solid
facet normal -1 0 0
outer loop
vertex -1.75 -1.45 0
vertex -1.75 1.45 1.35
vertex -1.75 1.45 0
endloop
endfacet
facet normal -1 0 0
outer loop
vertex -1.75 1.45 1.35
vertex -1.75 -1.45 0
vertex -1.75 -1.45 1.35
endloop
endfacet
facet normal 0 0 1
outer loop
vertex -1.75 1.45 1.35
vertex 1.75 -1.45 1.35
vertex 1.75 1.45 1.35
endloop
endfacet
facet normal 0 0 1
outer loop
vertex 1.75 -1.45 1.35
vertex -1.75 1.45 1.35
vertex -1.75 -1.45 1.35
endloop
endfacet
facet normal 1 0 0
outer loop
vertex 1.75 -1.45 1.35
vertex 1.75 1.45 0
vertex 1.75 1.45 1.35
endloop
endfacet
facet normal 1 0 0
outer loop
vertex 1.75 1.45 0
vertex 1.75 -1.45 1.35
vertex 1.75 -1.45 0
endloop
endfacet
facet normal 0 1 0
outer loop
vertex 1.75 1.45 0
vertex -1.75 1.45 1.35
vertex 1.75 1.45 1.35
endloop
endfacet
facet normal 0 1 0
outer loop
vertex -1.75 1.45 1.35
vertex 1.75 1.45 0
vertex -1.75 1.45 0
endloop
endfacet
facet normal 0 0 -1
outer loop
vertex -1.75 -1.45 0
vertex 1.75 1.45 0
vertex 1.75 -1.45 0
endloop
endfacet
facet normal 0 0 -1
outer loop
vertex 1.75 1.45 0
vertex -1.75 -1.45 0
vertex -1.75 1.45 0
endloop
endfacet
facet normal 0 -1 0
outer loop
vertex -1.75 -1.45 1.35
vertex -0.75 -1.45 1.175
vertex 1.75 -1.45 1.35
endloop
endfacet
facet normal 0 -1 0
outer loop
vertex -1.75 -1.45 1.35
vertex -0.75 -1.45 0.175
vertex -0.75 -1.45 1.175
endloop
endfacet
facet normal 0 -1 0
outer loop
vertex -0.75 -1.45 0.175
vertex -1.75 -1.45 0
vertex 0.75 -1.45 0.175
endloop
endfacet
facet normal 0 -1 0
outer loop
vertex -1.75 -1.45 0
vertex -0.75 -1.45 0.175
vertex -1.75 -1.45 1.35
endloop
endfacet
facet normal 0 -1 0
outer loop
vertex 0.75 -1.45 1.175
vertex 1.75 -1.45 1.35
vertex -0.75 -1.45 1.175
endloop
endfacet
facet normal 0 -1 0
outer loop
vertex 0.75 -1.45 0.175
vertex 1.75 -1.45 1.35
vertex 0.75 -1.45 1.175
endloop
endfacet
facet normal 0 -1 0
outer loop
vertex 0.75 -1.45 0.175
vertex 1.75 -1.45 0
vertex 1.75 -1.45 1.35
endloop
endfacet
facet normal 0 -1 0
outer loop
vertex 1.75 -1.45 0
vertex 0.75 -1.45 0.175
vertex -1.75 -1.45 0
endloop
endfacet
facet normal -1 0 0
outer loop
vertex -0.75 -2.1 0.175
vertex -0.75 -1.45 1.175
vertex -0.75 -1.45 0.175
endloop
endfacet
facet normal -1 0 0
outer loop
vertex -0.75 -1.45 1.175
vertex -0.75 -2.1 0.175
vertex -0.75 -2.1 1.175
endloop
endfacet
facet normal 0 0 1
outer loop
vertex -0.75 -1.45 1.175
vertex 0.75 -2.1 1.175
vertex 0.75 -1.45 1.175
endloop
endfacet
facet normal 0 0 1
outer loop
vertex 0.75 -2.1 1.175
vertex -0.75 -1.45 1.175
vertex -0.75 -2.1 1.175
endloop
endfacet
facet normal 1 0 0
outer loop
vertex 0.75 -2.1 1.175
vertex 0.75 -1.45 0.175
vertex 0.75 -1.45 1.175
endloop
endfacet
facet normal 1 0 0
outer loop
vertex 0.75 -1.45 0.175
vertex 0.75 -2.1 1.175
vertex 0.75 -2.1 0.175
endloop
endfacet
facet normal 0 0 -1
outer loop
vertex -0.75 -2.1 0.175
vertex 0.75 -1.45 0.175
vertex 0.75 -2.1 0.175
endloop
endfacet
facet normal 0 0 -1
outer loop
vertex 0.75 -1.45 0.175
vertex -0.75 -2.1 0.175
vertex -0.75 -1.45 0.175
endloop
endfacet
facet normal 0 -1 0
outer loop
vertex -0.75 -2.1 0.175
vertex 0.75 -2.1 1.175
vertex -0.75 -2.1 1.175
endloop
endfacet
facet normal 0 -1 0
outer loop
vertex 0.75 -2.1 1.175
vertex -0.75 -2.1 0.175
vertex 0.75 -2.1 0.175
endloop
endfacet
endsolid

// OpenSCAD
base_x = 3.5;
base_y = 2.9;
base_z = 1.35;

// center on X&Y, @0 on Z

// base
translate([0, 0, base_z/2])
cube([base_x, base_y, base_z], true);

pin_x = 1.5;
pin_y = 3.55-base_y;
pin_z = 1.0;

// pin
translate([0, -((base_y+pin_y)/2), ((base_z-pin_z)/2)+(pin_z/2)])
cube([pin_x, pin_y, pin_z], true);
